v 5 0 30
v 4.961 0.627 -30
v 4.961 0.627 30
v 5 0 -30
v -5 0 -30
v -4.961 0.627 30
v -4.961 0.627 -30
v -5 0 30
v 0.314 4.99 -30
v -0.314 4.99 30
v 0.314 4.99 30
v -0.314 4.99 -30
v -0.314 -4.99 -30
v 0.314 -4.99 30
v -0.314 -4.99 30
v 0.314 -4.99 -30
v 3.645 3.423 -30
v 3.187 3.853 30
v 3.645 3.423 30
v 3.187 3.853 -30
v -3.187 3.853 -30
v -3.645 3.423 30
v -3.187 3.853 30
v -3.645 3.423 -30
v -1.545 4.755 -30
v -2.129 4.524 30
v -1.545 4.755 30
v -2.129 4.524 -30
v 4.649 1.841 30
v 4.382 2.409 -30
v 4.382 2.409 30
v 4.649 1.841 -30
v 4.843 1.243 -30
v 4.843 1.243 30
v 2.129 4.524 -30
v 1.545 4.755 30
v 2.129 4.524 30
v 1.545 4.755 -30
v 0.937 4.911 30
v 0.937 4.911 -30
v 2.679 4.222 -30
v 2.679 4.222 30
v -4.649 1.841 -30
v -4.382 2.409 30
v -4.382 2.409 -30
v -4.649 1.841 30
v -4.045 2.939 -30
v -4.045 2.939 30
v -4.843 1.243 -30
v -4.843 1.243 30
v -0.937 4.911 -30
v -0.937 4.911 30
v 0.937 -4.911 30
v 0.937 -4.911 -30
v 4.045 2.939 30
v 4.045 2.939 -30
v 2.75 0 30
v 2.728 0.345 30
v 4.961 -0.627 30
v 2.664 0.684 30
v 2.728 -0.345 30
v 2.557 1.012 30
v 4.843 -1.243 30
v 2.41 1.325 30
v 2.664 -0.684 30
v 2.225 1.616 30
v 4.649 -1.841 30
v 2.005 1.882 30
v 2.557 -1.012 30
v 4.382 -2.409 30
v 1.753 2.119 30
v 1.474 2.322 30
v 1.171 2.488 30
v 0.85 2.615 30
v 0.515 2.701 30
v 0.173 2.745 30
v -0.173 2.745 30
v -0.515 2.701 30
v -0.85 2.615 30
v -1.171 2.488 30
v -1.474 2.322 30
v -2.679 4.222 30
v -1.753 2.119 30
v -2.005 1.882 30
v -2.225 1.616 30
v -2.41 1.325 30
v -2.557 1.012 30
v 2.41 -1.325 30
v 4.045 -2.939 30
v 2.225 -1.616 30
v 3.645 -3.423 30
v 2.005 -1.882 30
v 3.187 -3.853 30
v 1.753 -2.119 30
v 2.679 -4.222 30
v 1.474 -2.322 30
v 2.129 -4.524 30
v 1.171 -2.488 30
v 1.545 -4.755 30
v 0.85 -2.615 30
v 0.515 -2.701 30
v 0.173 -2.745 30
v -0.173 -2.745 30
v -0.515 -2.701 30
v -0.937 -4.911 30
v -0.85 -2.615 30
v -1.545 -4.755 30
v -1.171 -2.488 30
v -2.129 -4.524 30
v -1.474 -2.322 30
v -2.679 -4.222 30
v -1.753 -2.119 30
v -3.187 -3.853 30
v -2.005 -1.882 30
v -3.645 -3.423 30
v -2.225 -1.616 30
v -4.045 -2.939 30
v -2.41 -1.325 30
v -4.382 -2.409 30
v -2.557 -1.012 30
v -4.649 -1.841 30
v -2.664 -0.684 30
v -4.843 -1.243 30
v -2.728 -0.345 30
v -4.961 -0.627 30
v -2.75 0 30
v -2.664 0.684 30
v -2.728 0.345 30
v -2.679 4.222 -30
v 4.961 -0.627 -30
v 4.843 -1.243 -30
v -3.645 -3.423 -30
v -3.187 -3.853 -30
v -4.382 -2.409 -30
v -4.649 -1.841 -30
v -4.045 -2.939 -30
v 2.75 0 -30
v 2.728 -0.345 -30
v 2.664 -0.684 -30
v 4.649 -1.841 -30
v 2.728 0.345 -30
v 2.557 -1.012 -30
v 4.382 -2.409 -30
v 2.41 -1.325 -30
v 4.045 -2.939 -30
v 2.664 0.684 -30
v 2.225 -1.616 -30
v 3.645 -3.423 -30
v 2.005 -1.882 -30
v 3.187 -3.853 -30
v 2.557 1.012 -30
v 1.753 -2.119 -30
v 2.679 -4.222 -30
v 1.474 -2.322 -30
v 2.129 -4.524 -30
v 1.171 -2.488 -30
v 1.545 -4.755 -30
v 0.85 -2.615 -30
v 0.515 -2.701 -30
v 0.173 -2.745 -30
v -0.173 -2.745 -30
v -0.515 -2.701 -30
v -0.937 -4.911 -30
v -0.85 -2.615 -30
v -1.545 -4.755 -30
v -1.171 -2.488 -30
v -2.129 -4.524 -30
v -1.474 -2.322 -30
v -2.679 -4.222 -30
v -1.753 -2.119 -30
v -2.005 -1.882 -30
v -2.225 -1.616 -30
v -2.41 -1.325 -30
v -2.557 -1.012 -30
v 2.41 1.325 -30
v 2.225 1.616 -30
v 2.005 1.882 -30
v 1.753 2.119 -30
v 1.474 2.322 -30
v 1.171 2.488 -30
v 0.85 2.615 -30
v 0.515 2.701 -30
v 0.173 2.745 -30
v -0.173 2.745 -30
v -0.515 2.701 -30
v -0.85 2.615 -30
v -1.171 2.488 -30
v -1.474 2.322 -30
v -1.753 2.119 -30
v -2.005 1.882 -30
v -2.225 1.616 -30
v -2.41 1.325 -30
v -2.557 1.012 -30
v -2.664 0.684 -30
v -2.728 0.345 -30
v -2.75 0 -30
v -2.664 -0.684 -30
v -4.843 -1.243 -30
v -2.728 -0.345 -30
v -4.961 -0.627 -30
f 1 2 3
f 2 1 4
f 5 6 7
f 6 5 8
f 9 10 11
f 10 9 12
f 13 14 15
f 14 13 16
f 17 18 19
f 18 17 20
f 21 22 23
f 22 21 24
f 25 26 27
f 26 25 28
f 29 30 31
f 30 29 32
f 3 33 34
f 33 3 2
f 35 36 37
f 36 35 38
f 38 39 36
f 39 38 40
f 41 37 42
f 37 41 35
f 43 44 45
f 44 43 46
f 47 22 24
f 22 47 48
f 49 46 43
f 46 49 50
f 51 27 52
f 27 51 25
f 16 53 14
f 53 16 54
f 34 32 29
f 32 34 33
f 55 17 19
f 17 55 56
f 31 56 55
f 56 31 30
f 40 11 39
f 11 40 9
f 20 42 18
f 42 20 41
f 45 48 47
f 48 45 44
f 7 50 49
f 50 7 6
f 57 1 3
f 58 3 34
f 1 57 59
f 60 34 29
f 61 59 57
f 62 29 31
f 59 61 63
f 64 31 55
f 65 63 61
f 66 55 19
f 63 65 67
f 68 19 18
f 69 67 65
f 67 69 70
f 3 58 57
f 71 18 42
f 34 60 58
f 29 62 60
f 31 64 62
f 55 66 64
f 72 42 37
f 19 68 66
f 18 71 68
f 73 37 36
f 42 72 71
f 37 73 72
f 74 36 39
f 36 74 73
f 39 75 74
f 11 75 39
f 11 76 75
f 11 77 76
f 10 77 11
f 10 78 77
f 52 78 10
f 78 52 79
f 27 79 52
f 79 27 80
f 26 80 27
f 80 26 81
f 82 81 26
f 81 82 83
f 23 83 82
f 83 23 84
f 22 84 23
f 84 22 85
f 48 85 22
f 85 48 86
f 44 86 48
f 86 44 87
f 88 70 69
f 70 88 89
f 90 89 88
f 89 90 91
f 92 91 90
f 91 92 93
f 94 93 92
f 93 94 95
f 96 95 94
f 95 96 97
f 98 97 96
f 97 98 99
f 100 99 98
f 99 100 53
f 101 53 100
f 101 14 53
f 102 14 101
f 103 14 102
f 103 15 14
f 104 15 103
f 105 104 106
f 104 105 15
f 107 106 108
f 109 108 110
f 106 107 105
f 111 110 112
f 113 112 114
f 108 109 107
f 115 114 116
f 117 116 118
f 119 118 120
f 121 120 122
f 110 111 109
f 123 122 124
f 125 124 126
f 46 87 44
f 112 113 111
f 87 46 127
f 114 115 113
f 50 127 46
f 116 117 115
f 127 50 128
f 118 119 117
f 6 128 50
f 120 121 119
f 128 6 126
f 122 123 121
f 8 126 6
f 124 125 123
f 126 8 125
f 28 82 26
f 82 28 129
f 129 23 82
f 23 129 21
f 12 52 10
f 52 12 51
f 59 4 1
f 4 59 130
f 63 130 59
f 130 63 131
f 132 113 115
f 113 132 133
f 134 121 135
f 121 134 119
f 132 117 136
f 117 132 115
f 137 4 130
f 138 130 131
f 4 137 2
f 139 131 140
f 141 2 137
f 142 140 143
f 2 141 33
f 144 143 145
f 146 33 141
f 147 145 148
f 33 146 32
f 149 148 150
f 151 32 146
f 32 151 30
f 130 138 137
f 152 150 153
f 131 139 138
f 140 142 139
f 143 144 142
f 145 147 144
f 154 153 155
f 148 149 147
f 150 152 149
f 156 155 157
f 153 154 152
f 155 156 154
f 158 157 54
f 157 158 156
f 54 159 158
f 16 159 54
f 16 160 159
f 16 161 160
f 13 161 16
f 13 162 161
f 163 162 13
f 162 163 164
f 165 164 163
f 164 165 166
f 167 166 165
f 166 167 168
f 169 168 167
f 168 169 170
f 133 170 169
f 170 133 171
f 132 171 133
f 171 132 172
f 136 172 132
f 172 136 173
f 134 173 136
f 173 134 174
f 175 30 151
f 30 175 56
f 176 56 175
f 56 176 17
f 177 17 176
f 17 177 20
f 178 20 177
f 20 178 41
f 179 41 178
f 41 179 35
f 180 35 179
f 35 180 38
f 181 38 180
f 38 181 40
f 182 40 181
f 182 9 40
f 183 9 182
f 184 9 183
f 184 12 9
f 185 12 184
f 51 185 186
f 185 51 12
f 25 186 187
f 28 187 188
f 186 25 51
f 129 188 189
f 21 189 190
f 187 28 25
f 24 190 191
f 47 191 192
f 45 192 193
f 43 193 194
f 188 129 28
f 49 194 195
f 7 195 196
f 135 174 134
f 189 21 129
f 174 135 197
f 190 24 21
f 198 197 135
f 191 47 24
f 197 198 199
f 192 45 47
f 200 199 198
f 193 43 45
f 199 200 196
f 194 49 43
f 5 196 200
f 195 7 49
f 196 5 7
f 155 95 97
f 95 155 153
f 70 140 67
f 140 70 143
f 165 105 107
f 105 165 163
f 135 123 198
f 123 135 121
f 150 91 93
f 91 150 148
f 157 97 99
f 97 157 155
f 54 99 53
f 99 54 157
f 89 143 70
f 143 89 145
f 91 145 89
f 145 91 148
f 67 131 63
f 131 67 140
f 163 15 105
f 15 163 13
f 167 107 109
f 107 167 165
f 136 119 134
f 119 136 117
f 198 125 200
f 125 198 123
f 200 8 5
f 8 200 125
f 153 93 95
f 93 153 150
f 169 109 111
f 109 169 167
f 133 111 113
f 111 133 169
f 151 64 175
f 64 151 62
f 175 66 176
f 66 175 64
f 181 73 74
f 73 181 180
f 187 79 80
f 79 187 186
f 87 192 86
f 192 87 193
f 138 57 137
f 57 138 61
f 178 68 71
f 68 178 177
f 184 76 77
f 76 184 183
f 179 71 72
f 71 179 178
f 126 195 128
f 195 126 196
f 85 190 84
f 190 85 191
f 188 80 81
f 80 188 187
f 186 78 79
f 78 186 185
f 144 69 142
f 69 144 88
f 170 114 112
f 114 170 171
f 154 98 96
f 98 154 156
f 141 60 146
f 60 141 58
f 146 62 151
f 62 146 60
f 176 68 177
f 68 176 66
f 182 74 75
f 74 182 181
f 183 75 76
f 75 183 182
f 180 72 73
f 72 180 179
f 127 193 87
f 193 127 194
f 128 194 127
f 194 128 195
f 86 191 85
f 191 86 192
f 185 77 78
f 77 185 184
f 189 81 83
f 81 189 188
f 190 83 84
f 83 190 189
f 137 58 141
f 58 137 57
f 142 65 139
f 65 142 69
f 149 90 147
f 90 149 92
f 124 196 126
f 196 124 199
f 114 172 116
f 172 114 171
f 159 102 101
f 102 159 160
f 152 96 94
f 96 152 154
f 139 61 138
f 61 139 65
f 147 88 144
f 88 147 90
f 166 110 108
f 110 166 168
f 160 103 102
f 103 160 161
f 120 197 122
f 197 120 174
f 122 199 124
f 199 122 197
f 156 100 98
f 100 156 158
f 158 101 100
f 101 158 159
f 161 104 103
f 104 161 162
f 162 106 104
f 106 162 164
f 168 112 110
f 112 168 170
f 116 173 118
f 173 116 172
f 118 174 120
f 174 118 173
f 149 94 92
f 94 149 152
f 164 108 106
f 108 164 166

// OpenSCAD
$fn = 50;


difference() {
	union() {
		translate(v = [0, 0, -30.0000000000]) {
			cylinder(h = 60, r = 5.0000000000);
		}
	}
	union() {
		translate(v = [0, 0, -100.0000000000]) {
			cylinder(h = 200, r = 2.7500000000);
		}
	}
}
